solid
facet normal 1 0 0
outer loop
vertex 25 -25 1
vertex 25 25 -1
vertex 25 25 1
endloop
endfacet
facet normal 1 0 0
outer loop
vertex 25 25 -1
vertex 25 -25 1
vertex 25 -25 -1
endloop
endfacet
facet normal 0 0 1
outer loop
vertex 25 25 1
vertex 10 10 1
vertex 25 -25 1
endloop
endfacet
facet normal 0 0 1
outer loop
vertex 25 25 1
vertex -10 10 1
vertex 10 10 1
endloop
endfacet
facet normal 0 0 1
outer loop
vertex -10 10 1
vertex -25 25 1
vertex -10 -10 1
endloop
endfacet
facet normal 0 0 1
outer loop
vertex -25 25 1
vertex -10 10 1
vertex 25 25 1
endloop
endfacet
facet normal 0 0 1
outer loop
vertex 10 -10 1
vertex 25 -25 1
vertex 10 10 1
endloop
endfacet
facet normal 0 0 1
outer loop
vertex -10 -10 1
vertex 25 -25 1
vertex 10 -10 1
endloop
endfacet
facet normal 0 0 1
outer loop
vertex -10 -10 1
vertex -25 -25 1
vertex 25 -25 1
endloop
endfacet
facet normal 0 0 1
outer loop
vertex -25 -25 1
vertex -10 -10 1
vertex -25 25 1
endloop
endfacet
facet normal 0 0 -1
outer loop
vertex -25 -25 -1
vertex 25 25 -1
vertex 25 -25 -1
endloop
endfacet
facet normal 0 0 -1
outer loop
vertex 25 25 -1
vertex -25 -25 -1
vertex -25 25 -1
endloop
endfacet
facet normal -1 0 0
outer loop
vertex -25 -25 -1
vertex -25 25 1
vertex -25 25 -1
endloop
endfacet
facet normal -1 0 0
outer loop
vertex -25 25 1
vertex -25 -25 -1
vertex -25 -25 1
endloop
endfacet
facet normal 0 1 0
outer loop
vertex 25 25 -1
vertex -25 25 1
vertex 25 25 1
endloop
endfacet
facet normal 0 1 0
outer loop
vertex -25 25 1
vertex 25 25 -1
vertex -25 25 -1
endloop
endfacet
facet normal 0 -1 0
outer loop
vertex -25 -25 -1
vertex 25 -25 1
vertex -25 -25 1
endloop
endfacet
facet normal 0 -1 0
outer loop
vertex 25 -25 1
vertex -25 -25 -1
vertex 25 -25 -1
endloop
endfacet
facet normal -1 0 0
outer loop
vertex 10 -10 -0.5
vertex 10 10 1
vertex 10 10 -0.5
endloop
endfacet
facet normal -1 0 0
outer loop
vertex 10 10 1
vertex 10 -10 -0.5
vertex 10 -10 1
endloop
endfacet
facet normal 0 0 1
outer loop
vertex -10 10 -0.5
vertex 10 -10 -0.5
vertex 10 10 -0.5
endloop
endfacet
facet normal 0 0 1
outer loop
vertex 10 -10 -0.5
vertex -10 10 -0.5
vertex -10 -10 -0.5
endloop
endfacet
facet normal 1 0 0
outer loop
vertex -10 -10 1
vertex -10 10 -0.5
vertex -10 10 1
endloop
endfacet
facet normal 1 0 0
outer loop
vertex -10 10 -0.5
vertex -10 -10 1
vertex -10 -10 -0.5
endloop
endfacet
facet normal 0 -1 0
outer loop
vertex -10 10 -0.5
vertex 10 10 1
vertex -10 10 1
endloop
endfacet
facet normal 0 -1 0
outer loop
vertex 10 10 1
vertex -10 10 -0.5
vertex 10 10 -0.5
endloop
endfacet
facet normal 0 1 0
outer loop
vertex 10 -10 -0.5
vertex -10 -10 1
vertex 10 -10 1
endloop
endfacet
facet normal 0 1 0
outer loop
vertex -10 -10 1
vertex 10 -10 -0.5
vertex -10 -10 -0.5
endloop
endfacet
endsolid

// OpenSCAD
// Parameters for the flat plate with square cutout
plate_length = 50;  // Length of the rectangular plate
plate_width = 50;   // Width of the rectangular plate
plate_thickness = 2; // Thickness of the plate
cutout_size = 20;   // Size of the square cutout

// Module to create the flat plate with a square cutout
module flat_plate_with_square_cutout() {
    difference() {
        // Create the rectangular plate
        cube([plate_length, plate_width, plate_thickness], center = true);
        // Create the square cutout
        translate([0, 0, plate_thickness / 2])
            cube([cutout_size, cutout_size, plate_thickness + 1], center = true);
    }
}

// Render the flat plate with square cutout
flat_plate_with_square_cutout();
